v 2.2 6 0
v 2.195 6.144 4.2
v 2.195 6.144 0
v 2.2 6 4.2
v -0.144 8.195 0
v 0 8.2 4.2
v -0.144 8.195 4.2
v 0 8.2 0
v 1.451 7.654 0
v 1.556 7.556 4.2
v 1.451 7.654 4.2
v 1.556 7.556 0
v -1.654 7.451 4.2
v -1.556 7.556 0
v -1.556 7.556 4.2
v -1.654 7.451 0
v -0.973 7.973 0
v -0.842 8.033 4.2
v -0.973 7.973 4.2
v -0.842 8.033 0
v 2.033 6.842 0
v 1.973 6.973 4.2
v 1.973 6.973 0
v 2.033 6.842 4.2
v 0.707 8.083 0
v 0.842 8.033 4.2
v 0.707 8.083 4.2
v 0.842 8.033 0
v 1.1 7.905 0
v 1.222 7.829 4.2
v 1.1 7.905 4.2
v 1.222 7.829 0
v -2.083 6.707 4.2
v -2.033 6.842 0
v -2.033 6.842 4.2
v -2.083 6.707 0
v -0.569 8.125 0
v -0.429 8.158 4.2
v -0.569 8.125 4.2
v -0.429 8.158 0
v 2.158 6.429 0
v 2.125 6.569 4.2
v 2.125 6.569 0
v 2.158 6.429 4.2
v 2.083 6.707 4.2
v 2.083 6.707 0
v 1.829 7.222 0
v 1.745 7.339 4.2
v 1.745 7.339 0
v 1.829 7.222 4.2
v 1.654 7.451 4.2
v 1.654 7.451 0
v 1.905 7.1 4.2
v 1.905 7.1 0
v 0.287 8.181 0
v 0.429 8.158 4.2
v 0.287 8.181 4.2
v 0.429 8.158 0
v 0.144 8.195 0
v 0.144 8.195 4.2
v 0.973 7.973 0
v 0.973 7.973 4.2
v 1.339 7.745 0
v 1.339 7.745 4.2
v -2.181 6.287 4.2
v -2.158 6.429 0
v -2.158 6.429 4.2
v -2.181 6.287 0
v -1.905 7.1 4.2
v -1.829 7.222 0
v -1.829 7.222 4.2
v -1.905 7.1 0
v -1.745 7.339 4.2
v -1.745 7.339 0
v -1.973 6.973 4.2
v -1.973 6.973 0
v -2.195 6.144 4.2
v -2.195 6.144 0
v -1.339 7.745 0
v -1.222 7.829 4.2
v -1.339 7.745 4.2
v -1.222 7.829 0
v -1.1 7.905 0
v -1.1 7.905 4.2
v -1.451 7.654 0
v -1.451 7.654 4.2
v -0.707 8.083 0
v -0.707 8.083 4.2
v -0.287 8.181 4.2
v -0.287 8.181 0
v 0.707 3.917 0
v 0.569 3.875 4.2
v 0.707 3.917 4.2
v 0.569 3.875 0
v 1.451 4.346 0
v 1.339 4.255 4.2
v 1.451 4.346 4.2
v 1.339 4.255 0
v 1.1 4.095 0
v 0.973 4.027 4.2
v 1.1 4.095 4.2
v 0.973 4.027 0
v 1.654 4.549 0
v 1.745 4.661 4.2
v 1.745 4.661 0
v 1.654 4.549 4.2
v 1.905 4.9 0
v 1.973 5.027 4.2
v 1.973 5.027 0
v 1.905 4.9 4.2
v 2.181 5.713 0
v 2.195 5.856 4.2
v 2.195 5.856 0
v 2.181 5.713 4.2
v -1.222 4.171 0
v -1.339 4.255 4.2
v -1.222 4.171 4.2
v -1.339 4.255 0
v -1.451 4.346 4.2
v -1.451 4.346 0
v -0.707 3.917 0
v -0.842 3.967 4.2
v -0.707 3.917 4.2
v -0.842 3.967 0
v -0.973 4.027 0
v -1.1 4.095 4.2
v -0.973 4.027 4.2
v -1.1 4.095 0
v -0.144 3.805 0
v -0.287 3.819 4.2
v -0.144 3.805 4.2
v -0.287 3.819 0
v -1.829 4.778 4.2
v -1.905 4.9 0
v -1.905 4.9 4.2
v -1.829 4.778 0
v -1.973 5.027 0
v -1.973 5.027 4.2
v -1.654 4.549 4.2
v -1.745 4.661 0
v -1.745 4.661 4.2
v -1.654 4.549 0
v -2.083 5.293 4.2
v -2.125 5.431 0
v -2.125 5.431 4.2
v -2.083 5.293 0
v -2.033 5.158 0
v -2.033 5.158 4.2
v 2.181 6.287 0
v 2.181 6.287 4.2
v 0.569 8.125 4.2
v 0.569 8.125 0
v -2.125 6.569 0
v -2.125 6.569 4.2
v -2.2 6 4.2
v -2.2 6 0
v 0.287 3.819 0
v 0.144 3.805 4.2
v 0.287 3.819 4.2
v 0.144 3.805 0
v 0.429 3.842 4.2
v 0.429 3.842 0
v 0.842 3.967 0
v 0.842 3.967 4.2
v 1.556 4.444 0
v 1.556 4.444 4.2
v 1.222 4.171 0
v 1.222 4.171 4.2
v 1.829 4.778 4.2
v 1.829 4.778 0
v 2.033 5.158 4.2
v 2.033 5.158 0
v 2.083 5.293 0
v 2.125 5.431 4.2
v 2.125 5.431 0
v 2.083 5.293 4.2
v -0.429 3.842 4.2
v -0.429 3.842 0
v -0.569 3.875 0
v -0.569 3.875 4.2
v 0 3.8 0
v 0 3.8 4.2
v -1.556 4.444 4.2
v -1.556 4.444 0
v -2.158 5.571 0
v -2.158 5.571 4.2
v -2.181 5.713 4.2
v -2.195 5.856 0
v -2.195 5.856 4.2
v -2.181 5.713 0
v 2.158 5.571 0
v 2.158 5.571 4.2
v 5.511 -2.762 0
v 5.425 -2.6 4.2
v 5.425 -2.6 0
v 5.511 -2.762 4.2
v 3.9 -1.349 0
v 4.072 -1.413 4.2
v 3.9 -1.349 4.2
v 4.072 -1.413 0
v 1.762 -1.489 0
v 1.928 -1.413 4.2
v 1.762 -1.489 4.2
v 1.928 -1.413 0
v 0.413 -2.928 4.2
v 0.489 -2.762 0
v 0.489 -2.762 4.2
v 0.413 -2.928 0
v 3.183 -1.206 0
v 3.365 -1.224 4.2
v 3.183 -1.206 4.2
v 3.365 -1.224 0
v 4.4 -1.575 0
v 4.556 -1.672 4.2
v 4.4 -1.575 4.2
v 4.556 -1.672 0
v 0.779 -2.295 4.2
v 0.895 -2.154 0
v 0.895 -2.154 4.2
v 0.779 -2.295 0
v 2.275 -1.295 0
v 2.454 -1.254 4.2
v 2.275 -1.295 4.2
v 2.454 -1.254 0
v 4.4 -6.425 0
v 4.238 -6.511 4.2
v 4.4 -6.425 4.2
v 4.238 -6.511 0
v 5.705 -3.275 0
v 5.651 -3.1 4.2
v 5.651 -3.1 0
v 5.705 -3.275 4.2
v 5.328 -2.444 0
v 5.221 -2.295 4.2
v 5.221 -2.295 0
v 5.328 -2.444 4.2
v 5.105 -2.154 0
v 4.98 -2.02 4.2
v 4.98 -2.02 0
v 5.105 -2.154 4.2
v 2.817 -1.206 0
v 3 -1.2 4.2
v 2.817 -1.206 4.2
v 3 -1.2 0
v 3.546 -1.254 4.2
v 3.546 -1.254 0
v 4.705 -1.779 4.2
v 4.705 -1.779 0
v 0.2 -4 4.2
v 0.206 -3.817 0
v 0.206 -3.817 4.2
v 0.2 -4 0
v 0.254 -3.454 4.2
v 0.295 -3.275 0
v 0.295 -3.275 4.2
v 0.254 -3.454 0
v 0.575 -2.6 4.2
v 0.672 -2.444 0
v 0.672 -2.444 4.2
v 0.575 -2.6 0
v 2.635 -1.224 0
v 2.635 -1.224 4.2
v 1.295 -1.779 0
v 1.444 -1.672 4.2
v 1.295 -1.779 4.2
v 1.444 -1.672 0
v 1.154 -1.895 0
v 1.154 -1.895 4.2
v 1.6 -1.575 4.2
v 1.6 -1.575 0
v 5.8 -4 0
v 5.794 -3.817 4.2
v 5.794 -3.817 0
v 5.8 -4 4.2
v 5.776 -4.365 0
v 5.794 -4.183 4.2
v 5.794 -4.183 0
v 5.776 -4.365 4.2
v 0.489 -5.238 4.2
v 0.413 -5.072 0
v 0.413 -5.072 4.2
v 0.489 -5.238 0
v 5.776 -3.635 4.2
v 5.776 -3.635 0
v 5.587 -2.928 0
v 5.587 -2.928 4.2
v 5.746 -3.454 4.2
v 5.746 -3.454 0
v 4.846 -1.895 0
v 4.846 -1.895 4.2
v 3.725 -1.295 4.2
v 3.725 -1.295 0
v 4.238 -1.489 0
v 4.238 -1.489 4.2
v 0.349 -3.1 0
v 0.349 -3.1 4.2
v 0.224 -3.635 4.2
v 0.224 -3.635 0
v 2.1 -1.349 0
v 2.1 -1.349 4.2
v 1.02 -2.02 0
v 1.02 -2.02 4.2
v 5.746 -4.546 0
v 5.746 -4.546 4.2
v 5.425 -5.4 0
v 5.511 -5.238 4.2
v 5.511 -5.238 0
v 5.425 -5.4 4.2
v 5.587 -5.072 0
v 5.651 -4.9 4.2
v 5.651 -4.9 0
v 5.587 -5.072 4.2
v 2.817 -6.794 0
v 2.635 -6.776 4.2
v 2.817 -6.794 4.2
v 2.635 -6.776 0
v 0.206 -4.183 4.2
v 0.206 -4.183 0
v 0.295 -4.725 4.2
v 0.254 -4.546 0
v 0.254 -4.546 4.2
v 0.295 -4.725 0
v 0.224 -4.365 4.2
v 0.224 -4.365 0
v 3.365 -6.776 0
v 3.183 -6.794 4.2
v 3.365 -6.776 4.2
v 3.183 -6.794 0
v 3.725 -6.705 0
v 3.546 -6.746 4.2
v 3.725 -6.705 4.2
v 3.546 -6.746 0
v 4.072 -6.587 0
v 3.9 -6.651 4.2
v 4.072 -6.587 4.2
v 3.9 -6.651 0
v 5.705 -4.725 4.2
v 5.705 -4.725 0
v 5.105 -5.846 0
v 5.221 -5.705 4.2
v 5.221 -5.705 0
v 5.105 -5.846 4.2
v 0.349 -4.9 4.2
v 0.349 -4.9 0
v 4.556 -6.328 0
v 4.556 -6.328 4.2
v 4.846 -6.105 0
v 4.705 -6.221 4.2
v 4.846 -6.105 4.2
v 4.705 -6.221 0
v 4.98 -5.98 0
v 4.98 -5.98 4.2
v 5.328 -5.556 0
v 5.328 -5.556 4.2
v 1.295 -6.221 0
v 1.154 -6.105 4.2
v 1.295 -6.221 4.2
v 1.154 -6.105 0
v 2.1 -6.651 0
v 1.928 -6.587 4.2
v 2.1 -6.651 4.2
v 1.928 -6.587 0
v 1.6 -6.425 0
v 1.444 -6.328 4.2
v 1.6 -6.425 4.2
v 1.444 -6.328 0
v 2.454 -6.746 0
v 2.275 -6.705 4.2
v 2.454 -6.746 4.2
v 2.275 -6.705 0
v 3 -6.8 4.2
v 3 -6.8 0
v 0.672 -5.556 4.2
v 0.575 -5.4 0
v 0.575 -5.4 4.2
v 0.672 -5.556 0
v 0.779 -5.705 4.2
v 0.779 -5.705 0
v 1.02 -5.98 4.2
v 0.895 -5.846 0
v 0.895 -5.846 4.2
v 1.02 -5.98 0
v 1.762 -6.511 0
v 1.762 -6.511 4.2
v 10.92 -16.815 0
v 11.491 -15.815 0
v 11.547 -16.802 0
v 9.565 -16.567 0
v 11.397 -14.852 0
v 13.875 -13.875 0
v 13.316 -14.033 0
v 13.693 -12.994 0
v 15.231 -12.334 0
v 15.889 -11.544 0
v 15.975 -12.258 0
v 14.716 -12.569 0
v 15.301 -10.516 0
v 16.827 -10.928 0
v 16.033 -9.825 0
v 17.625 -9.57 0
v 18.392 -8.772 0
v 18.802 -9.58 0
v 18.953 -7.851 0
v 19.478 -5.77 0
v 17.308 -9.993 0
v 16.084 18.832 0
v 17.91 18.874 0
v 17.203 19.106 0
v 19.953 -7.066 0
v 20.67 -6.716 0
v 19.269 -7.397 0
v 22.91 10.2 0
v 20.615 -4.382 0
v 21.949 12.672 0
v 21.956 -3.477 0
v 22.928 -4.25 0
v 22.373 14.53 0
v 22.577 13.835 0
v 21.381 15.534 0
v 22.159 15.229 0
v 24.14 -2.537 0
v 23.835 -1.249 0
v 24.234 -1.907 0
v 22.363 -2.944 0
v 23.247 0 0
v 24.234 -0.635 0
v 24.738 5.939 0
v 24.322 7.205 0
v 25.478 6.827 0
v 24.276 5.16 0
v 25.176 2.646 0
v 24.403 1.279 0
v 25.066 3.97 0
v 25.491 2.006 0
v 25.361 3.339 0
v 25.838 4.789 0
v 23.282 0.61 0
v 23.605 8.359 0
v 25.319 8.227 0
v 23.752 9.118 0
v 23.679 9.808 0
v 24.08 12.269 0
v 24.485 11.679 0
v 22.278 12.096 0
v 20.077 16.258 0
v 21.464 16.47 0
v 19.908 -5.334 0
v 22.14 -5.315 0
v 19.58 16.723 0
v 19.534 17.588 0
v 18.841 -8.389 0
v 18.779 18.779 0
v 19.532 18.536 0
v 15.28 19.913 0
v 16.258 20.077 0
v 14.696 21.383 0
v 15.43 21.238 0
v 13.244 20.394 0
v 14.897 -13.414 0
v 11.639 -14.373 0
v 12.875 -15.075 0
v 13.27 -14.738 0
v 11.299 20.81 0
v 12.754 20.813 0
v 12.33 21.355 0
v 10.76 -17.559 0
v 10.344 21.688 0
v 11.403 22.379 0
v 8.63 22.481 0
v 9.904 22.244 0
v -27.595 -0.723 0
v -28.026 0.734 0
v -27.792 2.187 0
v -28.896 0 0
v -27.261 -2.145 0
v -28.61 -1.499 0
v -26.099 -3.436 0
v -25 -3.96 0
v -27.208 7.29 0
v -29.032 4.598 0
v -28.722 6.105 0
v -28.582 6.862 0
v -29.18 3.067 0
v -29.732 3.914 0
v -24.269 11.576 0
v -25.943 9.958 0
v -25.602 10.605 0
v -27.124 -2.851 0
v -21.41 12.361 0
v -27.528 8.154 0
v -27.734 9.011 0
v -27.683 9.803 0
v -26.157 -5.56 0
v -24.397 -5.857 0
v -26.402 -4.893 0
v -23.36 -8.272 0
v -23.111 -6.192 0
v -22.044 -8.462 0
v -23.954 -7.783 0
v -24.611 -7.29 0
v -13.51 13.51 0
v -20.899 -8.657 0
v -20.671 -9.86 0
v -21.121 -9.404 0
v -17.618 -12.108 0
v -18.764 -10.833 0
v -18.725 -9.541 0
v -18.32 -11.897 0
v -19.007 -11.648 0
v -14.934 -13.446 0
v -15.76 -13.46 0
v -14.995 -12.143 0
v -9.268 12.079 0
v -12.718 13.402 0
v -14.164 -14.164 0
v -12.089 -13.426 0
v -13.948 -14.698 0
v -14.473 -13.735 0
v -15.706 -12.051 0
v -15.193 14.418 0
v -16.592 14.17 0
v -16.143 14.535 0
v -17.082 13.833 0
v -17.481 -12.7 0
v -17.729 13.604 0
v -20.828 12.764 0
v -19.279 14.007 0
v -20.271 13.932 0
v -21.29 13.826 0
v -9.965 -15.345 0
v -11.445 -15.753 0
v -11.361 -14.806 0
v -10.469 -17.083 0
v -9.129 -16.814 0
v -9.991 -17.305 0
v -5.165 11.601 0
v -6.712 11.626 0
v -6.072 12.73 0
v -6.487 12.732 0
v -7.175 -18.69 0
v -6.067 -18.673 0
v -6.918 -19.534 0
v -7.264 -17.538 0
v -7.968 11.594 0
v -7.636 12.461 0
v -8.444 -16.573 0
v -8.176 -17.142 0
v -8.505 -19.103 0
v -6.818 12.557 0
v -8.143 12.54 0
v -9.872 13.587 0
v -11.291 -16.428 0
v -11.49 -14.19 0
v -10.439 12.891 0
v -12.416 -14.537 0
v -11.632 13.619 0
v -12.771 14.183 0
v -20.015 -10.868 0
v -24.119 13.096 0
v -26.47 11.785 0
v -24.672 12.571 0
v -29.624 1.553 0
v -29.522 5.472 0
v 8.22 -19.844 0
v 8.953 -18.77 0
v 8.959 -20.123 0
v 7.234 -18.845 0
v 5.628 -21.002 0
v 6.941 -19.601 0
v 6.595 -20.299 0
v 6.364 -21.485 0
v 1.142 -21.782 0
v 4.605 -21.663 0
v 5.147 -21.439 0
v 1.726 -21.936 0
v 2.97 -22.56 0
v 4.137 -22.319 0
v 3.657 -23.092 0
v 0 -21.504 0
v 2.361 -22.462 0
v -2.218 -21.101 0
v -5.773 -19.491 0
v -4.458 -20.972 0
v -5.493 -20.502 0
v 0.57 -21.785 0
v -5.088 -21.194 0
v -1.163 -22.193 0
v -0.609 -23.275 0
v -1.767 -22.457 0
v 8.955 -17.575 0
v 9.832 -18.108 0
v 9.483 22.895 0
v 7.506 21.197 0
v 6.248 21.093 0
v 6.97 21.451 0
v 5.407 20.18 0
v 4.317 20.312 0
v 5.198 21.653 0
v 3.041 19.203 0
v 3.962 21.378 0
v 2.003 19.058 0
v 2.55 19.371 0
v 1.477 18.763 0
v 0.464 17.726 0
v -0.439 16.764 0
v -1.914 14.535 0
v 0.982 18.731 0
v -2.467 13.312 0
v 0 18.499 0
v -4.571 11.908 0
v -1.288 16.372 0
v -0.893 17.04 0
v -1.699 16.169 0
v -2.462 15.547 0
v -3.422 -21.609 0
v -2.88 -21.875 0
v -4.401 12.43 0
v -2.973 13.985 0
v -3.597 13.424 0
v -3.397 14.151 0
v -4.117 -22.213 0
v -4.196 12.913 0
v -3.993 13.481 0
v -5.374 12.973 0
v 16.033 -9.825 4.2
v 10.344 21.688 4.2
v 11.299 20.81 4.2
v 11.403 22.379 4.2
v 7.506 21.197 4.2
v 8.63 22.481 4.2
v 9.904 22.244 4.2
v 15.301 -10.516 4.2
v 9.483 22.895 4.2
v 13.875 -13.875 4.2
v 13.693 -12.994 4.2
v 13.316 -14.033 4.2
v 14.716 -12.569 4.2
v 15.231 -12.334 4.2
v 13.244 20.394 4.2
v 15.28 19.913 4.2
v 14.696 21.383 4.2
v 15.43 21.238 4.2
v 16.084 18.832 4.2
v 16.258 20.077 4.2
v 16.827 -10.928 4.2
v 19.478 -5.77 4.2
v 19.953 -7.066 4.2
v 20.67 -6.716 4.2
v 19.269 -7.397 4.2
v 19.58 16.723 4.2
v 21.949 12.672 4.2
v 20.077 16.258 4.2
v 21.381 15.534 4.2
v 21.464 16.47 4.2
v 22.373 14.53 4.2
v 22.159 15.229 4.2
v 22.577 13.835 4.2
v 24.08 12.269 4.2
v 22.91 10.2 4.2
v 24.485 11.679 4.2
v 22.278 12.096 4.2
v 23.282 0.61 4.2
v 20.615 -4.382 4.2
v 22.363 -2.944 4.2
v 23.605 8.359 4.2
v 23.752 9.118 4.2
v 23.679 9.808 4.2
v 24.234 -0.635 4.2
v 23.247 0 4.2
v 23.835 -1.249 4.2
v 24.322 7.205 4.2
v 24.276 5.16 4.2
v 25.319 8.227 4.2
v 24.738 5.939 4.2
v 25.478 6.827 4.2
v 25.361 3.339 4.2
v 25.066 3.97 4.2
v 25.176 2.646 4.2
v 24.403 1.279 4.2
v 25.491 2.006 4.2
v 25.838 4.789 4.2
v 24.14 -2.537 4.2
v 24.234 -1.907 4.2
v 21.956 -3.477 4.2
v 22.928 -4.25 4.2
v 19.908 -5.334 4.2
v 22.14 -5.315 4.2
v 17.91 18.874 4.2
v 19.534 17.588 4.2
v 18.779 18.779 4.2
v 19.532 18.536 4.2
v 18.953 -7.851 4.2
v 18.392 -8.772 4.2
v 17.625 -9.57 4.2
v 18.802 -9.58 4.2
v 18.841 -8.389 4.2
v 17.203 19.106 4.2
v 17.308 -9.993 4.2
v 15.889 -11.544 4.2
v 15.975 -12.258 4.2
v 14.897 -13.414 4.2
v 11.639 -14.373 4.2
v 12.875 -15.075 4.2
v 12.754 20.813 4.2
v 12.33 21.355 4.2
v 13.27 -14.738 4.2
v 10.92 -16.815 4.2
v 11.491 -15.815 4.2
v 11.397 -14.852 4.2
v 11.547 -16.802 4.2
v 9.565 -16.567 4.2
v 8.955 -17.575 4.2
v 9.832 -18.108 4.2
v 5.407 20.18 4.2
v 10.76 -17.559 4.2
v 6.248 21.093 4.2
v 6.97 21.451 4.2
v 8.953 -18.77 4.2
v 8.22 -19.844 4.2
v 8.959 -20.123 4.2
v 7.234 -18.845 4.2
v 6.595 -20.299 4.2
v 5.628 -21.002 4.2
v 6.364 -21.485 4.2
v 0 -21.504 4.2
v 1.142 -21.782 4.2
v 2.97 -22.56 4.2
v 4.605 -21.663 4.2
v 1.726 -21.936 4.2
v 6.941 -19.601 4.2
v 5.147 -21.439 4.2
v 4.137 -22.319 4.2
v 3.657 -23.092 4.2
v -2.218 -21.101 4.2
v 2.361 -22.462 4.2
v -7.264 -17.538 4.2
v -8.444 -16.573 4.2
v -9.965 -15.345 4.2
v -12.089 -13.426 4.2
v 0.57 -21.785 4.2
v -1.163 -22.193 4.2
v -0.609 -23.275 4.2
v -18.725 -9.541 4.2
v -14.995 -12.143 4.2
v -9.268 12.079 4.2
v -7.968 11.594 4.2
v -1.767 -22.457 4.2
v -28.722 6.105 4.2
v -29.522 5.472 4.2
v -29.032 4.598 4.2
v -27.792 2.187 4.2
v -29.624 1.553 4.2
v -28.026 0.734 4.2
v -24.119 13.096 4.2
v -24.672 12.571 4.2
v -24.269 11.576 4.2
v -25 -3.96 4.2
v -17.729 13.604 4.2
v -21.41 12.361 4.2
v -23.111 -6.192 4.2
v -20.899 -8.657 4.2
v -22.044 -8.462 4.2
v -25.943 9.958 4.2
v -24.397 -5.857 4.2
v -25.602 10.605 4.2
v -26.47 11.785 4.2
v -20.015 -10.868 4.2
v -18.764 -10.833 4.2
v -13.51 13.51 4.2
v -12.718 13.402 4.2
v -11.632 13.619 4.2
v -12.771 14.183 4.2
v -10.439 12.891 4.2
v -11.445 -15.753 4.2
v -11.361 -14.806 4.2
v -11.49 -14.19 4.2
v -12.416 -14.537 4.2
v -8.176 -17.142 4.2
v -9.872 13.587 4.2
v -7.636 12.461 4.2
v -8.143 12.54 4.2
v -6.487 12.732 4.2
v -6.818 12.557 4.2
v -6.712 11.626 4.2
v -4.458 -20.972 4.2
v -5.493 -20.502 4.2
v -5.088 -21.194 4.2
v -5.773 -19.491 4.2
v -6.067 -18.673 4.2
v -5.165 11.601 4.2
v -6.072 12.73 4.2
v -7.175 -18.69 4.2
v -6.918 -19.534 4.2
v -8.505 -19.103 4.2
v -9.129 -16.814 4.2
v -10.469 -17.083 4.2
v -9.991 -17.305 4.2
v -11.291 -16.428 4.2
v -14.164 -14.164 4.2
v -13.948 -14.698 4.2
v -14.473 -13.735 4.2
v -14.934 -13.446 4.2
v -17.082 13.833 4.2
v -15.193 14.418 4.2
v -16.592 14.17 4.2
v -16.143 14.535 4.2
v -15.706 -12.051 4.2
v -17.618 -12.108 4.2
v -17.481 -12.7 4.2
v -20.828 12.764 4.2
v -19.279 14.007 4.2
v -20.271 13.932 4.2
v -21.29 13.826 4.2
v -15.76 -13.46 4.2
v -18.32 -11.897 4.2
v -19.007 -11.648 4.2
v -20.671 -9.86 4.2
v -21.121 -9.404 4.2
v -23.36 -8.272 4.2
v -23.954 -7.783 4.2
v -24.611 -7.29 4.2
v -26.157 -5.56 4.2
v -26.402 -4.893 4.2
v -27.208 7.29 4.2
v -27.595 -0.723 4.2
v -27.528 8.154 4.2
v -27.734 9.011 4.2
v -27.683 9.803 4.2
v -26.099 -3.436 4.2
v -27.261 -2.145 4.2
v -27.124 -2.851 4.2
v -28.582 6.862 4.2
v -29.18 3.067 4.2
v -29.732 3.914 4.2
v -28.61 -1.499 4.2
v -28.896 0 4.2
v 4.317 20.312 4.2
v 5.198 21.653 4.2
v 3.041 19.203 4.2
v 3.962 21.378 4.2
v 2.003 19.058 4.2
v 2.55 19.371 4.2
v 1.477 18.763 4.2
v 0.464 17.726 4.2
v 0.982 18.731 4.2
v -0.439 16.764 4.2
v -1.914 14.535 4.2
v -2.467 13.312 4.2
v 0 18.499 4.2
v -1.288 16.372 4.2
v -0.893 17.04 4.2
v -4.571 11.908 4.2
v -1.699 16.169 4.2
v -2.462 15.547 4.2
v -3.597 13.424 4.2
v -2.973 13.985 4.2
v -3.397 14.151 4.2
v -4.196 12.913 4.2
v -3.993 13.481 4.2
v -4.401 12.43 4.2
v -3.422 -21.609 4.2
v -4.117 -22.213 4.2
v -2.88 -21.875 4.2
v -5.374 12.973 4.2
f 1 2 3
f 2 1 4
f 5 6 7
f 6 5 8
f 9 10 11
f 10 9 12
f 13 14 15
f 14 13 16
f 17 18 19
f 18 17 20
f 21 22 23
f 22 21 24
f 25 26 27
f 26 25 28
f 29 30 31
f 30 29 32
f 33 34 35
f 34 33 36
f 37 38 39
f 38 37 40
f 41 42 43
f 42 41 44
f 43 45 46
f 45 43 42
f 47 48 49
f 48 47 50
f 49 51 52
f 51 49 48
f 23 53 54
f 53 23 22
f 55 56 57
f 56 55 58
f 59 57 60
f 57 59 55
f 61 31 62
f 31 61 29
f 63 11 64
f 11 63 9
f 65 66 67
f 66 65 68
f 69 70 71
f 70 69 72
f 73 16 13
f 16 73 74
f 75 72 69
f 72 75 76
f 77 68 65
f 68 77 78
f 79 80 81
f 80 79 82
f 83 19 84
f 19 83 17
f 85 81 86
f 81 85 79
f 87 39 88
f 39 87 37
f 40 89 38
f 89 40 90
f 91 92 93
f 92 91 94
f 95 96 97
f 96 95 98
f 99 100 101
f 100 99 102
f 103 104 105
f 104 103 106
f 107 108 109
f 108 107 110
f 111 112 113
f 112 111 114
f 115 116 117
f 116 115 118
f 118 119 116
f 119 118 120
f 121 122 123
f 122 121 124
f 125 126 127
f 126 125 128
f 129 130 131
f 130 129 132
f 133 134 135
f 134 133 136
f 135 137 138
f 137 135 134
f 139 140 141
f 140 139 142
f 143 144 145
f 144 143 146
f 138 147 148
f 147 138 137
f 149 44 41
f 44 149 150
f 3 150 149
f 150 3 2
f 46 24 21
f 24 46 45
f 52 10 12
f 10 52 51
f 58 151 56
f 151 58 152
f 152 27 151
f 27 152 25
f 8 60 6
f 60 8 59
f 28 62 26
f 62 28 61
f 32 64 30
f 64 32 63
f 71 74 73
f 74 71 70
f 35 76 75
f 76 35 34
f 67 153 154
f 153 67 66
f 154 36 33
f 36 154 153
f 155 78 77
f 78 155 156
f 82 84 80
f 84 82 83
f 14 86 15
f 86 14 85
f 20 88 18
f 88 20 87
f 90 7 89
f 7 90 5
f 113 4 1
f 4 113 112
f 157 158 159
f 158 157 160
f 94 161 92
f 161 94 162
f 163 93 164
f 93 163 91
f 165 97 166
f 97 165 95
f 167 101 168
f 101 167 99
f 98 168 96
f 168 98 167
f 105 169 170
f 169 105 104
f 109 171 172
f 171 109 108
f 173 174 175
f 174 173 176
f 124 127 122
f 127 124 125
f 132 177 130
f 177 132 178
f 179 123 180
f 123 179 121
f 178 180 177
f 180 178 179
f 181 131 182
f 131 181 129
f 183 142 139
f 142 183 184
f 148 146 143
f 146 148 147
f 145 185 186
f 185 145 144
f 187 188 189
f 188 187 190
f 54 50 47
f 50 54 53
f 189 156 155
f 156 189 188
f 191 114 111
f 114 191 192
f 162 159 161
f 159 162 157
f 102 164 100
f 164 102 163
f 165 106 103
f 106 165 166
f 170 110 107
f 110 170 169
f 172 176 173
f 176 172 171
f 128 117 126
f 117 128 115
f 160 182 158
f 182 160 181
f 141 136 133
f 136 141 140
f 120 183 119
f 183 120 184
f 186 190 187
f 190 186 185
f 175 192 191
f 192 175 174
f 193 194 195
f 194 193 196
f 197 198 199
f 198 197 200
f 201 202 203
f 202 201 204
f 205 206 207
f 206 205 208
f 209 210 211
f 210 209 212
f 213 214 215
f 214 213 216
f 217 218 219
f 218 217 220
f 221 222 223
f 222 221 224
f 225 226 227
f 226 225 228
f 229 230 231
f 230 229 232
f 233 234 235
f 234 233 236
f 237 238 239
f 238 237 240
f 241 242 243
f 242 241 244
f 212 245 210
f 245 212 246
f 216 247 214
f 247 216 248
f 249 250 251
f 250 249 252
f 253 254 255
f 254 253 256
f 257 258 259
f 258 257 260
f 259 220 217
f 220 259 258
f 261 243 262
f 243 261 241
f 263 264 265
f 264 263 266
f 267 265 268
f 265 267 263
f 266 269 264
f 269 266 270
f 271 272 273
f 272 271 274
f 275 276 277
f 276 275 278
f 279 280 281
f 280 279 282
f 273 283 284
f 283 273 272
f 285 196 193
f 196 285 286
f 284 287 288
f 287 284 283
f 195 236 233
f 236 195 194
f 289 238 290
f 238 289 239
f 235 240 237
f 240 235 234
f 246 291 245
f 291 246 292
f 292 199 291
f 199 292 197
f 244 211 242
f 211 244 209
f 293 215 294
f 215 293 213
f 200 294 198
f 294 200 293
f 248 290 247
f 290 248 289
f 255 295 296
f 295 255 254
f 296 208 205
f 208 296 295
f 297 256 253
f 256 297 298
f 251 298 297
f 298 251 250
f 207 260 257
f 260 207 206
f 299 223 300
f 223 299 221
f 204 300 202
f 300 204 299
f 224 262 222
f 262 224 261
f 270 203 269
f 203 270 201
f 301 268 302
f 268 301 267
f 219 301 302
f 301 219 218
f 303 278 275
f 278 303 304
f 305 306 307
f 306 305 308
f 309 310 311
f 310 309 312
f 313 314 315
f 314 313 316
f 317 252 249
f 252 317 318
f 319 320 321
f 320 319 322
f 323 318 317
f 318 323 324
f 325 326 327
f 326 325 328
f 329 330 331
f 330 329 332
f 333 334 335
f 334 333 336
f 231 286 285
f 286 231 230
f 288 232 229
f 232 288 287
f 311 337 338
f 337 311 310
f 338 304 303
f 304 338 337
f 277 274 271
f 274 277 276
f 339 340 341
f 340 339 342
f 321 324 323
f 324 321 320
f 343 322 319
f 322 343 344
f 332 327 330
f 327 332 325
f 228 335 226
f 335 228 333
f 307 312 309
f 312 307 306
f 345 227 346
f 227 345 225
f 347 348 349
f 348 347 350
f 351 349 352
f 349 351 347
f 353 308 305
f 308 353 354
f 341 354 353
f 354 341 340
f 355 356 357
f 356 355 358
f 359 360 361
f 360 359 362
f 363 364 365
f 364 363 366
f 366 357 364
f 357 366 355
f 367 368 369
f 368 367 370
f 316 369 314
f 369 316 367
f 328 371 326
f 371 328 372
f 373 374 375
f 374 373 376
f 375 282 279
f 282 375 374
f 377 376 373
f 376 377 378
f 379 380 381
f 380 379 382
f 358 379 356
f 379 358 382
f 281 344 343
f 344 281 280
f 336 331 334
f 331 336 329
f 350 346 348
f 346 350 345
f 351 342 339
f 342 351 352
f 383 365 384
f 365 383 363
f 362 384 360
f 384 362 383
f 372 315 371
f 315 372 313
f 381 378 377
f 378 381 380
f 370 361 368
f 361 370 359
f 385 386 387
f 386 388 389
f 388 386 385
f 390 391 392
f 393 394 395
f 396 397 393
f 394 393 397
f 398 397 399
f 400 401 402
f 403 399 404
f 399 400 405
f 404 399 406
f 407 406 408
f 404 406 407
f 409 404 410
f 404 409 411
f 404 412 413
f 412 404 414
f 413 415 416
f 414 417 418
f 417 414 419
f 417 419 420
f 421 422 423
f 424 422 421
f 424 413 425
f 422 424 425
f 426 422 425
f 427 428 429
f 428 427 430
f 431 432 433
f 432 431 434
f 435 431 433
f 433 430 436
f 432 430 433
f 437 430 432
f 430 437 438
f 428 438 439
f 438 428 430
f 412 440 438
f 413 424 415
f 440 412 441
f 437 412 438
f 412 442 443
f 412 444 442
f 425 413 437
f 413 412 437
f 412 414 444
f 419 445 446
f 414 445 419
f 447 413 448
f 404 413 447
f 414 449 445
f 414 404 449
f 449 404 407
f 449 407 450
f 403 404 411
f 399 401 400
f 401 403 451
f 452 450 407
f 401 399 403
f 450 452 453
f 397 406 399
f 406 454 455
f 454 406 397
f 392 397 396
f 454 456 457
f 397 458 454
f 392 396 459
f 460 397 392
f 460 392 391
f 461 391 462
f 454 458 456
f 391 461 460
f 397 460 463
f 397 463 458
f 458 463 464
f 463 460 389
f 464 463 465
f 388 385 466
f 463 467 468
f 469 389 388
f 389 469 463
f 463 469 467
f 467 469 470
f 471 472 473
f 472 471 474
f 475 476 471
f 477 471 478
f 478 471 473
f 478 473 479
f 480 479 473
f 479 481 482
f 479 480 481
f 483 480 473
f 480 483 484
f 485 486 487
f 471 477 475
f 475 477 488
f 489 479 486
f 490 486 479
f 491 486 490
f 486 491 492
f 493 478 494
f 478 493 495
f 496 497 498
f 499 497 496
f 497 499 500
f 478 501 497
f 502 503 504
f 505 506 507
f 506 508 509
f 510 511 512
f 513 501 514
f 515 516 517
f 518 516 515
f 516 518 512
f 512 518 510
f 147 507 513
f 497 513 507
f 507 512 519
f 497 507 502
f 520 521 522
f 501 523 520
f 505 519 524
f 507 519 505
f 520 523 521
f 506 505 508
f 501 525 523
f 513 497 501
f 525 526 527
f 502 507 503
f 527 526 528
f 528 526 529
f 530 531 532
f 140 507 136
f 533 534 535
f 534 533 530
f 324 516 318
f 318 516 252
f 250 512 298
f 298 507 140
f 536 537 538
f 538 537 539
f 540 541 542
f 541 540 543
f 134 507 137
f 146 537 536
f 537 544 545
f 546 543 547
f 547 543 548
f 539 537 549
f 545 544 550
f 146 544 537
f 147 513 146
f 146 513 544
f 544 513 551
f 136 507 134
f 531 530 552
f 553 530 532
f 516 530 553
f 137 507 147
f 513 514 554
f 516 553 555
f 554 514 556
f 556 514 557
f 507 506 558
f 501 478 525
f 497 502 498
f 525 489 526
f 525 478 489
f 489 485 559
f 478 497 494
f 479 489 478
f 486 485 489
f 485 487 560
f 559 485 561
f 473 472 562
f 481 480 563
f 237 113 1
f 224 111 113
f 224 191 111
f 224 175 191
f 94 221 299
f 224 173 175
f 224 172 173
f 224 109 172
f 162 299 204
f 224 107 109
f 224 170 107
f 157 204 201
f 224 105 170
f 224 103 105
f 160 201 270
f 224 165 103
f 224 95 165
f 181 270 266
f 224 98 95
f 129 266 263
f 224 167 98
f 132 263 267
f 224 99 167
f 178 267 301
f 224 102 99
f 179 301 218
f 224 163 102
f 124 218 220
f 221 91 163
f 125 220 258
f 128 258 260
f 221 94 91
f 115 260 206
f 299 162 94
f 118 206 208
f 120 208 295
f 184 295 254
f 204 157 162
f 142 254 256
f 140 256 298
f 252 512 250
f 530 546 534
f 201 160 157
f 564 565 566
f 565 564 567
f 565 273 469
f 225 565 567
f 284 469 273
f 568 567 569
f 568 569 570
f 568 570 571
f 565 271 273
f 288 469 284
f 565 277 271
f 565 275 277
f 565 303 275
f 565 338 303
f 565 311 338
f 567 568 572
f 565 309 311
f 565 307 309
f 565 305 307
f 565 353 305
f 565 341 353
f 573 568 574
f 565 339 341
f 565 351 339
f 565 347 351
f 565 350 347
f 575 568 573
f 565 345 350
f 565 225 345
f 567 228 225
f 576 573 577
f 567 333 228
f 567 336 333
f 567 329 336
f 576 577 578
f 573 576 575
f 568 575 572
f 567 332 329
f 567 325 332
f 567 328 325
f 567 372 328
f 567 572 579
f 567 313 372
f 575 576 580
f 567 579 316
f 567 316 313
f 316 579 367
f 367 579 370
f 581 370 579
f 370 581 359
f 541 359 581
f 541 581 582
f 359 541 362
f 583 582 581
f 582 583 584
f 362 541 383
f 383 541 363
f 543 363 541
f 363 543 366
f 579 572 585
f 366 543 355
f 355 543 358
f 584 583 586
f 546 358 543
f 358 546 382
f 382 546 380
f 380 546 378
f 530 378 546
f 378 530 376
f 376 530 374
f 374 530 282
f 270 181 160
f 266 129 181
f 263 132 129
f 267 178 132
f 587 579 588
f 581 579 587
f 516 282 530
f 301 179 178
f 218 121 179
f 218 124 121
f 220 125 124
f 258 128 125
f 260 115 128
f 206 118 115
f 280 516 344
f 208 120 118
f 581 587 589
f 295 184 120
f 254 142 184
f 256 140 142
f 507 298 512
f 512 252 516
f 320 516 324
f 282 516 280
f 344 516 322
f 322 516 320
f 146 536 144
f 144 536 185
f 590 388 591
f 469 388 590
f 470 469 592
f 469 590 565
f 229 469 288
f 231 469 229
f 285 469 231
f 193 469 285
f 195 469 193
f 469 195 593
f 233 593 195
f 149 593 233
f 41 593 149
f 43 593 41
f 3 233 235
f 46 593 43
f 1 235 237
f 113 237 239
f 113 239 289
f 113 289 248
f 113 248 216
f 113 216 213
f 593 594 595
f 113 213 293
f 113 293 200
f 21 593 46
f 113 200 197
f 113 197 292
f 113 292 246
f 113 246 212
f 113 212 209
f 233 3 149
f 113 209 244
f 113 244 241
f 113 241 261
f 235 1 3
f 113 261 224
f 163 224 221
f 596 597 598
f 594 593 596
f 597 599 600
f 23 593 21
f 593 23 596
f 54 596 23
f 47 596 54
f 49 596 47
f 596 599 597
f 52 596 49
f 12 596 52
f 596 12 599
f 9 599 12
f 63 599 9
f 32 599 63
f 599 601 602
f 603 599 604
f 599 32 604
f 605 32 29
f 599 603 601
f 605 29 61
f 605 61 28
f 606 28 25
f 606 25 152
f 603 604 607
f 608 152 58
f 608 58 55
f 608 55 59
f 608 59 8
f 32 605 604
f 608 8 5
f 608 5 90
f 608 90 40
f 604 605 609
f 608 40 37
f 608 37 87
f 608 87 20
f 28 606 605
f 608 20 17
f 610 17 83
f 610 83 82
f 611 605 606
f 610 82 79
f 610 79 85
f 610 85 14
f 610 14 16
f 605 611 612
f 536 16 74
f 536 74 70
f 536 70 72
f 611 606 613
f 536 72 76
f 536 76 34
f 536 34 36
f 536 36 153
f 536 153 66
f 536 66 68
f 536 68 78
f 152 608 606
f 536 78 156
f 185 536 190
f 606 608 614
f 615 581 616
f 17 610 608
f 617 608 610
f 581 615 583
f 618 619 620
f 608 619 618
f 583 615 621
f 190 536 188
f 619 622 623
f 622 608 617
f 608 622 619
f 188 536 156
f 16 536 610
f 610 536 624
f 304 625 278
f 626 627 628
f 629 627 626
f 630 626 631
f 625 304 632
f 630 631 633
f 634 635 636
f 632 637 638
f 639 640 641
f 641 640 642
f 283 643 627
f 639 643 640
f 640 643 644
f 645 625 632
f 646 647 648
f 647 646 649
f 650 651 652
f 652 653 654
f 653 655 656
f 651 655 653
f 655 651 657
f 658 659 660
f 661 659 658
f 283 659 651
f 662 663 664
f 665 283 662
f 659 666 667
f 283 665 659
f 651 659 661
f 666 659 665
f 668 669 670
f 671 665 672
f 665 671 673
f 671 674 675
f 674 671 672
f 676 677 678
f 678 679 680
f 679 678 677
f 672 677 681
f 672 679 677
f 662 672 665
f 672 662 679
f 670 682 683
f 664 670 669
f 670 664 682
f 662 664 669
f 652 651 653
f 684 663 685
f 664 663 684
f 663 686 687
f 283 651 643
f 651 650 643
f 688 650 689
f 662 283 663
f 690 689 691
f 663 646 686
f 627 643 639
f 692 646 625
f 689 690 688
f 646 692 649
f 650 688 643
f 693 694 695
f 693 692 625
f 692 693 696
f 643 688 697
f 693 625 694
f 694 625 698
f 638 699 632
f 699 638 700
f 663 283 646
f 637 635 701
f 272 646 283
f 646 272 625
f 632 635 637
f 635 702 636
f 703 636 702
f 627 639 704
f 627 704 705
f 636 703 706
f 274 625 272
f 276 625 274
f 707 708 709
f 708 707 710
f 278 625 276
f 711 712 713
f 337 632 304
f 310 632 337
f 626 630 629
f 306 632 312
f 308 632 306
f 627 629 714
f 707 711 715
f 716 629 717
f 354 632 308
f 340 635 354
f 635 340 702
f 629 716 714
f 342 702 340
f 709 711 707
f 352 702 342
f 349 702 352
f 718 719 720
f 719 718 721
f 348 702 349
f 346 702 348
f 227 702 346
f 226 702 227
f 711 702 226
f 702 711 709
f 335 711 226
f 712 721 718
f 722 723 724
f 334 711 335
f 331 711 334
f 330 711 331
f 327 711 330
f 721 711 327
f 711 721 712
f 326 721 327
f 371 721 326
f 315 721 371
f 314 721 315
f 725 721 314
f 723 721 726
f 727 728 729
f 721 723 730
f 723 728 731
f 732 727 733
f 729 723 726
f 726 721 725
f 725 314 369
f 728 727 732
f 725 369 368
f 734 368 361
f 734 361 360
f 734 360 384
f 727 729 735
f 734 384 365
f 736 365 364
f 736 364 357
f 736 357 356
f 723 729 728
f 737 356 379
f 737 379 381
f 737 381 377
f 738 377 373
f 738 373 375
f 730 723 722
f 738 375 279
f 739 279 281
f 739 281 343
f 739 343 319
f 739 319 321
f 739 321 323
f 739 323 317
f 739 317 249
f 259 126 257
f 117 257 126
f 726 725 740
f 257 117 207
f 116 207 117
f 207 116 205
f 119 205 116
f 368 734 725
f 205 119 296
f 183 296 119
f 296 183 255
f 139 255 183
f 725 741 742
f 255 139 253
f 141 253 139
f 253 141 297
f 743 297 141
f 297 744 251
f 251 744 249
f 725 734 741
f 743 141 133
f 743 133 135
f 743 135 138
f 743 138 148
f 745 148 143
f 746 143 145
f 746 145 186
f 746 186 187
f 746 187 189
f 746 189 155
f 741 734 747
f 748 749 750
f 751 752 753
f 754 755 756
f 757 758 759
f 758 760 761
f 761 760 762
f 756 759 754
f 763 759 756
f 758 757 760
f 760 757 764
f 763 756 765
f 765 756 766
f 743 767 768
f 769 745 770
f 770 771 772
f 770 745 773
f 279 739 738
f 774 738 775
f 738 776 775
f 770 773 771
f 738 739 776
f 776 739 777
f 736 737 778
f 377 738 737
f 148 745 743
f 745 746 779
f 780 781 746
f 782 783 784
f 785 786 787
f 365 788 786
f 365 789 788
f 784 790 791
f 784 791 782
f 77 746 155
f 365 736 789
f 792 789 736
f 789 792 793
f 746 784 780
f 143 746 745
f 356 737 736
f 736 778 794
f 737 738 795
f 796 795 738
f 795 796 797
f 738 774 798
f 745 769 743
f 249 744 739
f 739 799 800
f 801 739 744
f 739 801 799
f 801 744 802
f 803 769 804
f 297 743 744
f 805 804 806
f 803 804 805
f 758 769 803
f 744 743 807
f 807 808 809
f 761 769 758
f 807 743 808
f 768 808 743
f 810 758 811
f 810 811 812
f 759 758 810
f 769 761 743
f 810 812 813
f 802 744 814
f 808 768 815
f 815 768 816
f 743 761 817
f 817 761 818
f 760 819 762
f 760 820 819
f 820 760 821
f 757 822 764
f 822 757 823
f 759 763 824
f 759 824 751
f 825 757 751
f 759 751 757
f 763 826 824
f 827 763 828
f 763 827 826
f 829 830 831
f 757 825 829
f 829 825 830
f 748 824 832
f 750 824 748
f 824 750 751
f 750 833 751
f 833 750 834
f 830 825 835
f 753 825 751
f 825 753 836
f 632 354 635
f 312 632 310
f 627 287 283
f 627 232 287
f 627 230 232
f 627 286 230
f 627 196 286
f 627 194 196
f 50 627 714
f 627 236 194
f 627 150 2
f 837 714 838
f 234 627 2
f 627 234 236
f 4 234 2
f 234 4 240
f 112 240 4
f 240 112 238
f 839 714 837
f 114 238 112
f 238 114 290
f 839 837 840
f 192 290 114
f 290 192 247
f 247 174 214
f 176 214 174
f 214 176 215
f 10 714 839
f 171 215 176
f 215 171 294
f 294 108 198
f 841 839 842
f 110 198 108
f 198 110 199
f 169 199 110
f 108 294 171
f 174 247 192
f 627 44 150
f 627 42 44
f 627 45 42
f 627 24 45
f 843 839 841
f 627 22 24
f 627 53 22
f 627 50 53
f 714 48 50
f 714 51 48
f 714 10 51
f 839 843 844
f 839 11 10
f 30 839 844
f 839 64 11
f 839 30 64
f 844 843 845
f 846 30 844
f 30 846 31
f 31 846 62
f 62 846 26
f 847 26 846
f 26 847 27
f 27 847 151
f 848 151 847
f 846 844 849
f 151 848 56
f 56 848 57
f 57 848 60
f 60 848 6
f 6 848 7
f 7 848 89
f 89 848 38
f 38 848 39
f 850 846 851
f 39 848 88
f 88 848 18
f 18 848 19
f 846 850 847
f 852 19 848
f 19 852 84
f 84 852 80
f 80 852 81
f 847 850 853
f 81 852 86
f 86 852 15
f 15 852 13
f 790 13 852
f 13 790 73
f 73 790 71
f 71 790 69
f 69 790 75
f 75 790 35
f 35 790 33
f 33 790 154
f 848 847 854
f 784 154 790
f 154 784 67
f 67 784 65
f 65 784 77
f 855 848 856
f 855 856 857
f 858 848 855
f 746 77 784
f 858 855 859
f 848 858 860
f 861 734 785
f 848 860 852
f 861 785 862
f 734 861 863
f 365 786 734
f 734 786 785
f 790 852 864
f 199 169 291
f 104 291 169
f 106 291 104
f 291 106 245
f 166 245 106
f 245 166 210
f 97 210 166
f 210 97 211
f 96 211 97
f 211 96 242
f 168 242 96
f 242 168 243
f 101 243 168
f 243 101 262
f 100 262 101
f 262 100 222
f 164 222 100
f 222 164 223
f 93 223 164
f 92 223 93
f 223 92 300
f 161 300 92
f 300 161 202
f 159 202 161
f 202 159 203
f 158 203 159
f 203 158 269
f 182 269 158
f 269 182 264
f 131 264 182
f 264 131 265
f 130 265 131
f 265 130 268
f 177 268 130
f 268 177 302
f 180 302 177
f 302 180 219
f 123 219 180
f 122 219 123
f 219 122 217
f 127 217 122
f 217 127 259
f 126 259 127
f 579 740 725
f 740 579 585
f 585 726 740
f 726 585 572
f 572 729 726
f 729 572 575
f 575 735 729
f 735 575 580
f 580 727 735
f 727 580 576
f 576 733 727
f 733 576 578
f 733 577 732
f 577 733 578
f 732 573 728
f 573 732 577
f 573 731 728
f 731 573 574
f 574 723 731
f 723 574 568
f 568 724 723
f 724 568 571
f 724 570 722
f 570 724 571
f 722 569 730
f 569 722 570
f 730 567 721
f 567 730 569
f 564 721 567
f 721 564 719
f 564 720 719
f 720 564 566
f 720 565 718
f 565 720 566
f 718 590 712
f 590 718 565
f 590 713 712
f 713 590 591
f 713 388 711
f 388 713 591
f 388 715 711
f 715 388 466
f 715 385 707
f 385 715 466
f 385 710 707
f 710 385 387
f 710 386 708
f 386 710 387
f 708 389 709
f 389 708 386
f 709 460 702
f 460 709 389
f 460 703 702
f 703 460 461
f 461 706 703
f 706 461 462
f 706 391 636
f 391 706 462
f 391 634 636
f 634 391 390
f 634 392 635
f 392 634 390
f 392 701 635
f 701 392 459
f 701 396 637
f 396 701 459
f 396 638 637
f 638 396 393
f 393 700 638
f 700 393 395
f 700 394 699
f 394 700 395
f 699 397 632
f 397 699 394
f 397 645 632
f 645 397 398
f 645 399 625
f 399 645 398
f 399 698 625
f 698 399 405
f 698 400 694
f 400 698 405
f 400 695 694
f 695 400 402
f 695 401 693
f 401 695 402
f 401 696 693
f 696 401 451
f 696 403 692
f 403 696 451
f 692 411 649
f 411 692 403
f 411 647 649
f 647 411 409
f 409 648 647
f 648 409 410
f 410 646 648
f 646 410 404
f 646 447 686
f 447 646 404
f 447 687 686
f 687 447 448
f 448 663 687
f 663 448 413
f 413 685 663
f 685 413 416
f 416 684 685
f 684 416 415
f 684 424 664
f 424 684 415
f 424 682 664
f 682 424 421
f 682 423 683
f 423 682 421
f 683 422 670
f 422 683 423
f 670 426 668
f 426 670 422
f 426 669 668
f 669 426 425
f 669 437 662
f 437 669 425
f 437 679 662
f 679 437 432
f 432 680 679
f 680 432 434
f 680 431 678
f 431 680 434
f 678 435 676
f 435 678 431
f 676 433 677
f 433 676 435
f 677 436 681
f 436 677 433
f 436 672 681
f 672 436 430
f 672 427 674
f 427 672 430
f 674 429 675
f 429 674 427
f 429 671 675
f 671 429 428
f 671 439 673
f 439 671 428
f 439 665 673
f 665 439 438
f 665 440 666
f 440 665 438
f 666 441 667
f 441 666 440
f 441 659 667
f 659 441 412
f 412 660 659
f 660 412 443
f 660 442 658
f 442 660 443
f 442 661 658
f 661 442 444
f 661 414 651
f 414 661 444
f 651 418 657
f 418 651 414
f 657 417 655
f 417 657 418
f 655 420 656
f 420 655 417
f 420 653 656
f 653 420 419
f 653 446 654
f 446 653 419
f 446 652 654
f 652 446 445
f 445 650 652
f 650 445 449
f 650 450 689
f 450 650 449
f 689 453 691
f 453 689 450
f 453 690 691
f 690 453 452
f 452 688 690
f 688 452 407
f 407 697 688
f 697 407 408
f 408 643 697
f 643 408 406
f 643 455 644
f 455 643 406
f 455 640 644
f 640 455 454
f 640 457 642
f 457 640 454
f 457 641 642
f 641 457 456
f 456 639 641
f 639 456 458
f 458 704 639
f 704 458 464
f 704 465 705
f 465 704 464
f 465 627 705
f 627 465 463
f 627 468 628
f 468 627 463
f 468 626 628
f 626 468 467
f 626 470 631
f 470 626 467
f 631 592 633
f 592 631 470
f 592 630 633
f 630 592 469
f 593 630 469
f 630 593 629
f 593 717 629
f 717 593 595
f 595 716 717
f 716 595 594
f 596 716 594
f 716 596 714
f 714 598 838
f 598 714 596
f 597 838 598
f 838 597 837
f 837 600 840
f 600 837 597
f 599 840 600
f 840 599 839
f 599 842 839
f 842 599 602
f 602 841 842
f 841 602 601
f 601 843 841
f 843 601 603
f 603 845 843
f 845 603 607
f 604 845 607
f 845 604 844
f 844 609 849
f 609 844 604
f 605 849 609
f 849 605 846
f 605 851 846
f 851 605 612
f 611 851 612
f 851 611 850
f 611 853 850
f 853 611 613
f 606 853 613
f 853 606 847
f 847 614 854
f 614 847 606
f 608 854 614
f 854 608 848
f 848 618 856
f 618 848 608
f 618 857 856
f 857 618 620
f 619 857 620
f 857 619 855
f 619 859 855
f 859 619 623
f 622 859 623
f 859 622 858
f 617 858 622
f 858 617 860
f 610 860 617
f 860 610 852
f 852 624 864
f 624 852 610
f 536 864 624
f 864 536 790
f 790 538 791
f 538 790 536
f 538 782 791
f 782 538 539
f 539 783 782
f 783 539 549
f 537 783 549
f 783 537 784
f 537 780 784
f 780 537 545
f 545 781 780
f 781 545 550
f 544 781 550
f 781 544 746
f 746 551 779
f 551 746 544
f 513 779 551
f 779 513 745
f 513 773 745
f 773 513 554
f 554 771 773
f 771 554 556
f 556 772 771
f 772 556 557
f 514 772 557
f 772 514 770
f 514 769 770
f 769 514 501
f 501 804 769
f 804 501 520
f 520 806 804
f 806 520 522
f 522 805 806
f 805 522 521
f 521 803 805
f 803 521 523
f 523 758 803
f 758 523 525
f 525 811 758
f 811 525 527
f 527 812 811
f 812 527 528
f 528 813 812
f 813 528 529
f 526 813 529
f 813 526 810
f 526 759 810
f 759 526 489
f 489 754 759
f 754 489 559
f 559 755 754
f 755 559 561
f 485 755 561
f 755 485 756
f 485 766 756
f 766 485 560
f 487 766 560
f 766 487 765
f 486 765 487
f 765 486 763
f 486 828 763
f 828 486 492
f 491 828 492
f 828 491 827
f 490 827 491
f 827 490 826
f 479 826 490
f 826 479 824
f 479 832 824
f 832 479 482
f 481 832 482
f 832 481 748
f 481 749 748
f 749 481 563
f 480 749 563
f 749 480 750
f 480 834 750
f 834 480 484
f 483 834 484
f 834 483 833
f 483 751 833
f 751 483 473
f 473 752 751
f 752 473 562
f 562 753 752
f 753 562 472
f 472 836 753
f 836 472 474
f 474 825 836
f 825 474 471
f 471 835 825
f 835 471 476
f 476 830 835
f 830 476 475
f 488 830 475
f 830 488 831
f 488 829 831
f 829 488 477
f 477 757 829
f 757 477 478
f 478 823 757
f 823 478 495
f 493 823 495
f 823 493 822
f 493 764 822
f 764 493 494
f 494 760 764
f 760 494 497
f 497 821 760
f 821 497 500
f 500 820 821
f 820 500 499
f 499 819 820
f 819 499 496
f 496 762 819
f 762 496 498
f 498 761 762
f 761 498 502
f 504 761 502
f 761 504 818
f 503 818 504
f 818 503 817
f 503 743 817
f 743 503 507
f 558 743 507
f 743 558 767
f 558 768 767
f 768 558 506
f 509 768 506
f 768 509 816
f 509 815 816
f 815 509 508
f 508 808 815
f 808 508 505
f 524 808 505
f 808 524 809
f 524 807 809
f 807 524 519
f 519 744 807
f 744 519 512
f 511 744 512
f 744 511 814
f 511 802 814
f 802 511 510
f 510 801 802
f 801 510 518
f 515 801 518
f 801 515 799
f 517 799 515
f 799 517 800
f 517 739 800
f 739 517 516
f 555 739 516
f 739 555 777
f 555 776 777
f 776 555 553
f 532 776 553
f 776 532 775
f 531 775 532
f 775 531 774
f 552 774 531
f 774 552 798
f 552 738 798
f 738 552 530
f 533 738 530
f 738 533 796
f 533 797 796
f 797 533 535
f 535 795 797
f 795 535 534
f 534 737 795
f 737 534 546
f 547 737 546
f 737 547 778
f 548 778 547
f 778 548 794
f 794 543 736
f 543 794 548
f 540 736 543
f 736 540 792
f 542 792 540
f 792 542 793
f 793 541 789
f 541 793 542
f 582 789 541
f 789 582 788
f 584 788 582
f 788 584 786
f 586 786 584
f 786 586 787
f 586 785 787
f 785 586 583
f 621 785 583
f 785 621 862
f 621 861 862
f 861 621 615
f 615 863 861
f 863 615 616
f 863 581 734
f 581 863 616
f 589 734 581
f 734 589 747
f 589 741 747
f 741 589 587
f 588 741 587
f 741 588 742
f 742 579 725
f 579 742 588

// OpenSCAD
$fn=96;
thickness_mm = 4.2;
holes = [[0.0, 6.0, 2.2], [3.0, -4.0, 2.8]];
pts = [[23.2472, 0.0], [23.282, 0.6097], [24.403, 1.2789], [25.4911, 2.0062], [25.1765, 2.6462], [25.3608, 3.3388], [25.0665, 3.9702], [25.8376, 4.7887], [24.2756, 5.1599], [24.7383, 5.9391], [25.478, 6.8268], [24.3224, 7.2046], [25.319, 8.2267], [23.6051, 8.359], [23.7525, 9.1177], [23.6792, 9.8082], [22.91, 10.2002], [24.4846, 11.6786], [24.0798, 12.2693], [22.2783, 12.0961], [21.9492, 12.6724], [22.5766, 13.835], [22.3734, 14.5295], [22.1586, 15.2292], [21.3806, 15.5339], [21.4638, 16.4697], [20.0772, 16.2582], [19.5799, 16.7228], [19.534, 17.5885], [19.5323, 18.5355], [18.7793, 18.7793], [17.9104, 18.8736], [17.2032, 19.1061], [16.0839, 18.8319], [16.2582, 20.0771], [15.2797, 19.9128], [15.43, 21.2376], [14.6962, 21.3831], [13.2442, 20.3944], [12.7544, 20.8133], [12.3295, 21.3553], [11.2991, 20.8104], [11.4028, 22.3793], [10.3445, 21.6877], [9.9039, 22.2444], [9.4833, 22.8946], [8.6296, 22.4809], [7.5064, 21.1973], [6.9699, 21.4511], [6.2482, 21.0934], [5.4073, 20.1804], [5.1985, 21.6534], [4.3175, 20.3122], [3.9622, 21.3783], [3.0415, 19.203], [2.5503, 19.3711], [2.0031, 19.058], [1.4767, 18.763], [0.9816, 18.7309], [0.4642, 17.7263], [0.0, 18.4989], [-0.439, 16.7645], [-0.893, 17.0401], [-1.2885, 16.3716], [-1.6995, 16.1694], [-1.9136, 14.535], [-2.4623, 15.5467], [-2.4673, 13.3125], [-2.9726, 13.9848], [-3.3973, 14.1507], [-3.597, 13.4242], [-3.9933, 13.4813], [-4.1958, 12.9132], [-4.4015, 12.4295], [-4.5709, 11.9077], [-5.3736, 12.9731], [-5.165, 11.6009], [-6.072, 12.7302], [-6.4875, 12.7324], [-6.8178, 12.5568], [-6.7124, 11.6263], [-7.6361, 12.461], [-8.1433, 12.5396], [-7.9681, 11.5937], [-9.8717, 13.5873], [-9.2684, 12.0789], [-10.4387, 12.8907], [-11.6317, 13.619], [-12.7706, 14.1832], [-12.718, 13.4019], [-13.5096, 13.5096], [-15.1931, 14.4178], [-16.1428, 14.535], [-16.5915, 14.1705], [-17.082, 13.8327], [-17.7293, 13.6041], [-19.2791, 14.0071], [-20.2709, 13.9318], [-21.2896, 13.8256], [-20.8281, 12.7635], [-21.4096, 12.3608], [-24.1193, 13.0957], [-24.6722, 12.5711], [-24.2686, 11.5756], [-26.4695, 11.785], [-25.6017, 10.6046], [-25.9429, 9.9585], [-27.6826, 9.8029], [-27.7343, 9.0114], [-27.5278, 8.1541], [-27.208, 7.2904], [-28.5824, 6.862], [-28.7218, 6.105], [-29.5216, 5.4715], [-29.0315, 4.5981], [-29.7319, 3.9143], [-29.1803, 3.067], [-27.7917, 2.1873], [-29.6244, 1.5526], [-28.026, 0.7339], [-28.8964, 0.0], [-27.5947, -0.7226], [-28.6096, -1.4994], [-27.2606, -2.1455], [-27.1237, -2.8508], [-26.0992, -3.436], [-25.0, -3.9596], [-26.4018, -4.8933], [-26.157, -5.5598], [-24.3966, -5.8571], [-23.1108, -6.1925], [-24.6111, -7.2901], [-23.9542, -7.7832], [-23.3597, -8.2721], [-22.0443, -8.462], [-20.8993, -8.6568], [-21.1212, -9.4038], [-20.6708, -9.8595], [-18.7252, -9.541], [-20.0154, -10.8675], [-18.7639, -10.8333], [-19.0073, -11.6477], [-18.3199, -11.8971], [-17.6179, -12.1085], [-17.4807, -12.7005], [-15.7055, -12.0512], [-14.9949, -12.1426], [-15.7599, -13.4602], [-14.9339, -13.4465], [-14.4733, -13.7347], [-14.1637, -14.1637], [-13.9482, -14.6984], [-12.0891, -13.4263], [-12.4156, -14.5368], [-11.4905, -14.1896], [-11.3612, -14.8062], [-11.4452, -15.7529], [-11.2909, -16.4284], [-9.9651, -15.3449], [-10.4687, -17.0833], [-9.9908, -17.3046], [-9.1294, -16.8143], [-8.4443, -16.5728], [-8.1763, -17.142], [-8.5053, -19.1032], [-7.2644, -17.5378], [-7.1746, -18.6904], [-6.9175, -19.5345], [-6.0671, -18.6726], [-5.7734, -19.4907], [-5.4934, -20.5016], [-5.0882, -21.194], [-4.4578, -20.9723], [-4.1169, -22.2129], [-3.4225, -21.6089], [-2.8799, -21.8753], [-2.2178, -21.1006], [-1.7674, -22.4566], [-1.1631, -22.1929], [-0.6095, -23.2751], [-0.0, -21.5043], [0.5704, -21.7846], [1.1416, -21.7821], [1.7264, -21.9362], [2.3608, -22.4617], [2.9701, -22.5599], [3.6575, -23.0923], [4.1366, -22.319], [4.6046, -21.663], [5.1471, -21.4391], [5.6276, -21.0025], [6.3642, -21.485], [6.5955, -20.2988], [6.9412, -19.6014], [7.2341, -18.8454], [8.2195, -19.8435], [8.9592, -20.1226], [8.9529, -18.7701], [8.955, -17.5752], [9.8318, -18.108], [9.5648, -16.5668], [10.7604, -17.5593], [10.9197, -16.8149], [11.5474, -16.8016], [11.4906, -15.8154], [11.3966, -14.8524], [11.6387, -14.3726], [12.875, -15.0747], [13.2702, -14.7381], [13.3165, -14.0326], [13.875, -13.875], [13.6928, -12.994], [14.8972, -13.4135], [14.7163, -12.5689], [15.2309, -12.3337], [15.9748, -12.2579], [15.8893, -11.5442], [15.3006, -10.5158], [16.8273, -10.9278], [16.0326, -9.8248], [17.3085, -9.9931], [17.6251, -9.5697], [18.8025, -9.5804], [18.392, -8.7725], [18.8414, -8.3888], [18.9532, -7.8507], [19.2694, -7.3968], [19.9533, -7.0658], [20.6703, -6.7162], [19.4781, -5.7697], [19.9081, -5.3344], [22.1397, -5.3153], [20.6148, -4.3818], [22.9284, -4.2495], [21.9556, -3.4774], [22.3632, -2.9442], [24.1398, -2.5372], [24.2342, -1.9073], [23.8352, -1.2492], [24.2344, -0.6346]];
module body(){
  linear_extrude(height=thickness_mm) polygon(points=pts);
}
difference(){
  body();
  for(h=holes){
    translate([h[0], h[1], -1]) cylinder(h=thickness_mm+2, r=h[2]);
  }
}
